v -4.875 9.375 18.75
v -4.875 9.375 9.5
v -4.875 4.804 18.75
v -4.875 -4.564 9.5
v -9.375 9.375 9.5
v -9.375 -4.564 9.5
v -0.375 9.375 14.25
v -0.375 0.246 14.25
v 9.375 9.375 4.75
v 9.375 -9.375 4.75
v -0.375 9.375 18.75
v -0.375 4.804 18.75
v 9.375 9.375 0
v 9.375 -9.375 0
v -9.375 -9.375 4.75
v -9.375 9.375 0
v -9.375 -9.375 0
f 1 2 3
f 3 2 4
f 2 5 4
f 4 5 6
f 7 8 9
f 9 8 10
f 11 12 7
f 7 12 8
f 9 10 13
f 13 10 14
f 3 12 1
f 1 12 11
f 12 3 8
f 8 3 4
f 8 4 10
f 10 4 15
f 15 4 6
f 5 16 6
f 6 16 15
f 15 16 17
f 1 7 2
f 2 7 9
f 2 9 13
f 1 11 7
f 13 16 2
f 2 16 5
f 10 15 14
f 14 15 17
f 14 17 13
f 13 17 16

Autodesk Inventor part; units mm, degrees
ref_plane "YZ Plane" through (0, 0, 0) normal (1, 0, 0) x (0, 1, 0)
ref_plane "XZ Plane" through (0, 0, 0) normal (0, 1, 0) x (-1, 0, 0)
ref_plane "XY Plane" through (0, 0, 0) normal (0, 0, 1) x (1, 0, 0)
sketch "Sketch1" plane through (0, 0, 0) normal (0, 0, 1) x (1, 0, 0)
  line L0 (-9.375, -9.375) -> (9.375, -9.375)
  line L1 (9.375, -9.375) -> (9.375, 9.375)
  line L2 (9.375, 9.375) -> (-9.375, 9.375)
  line L3 (-9.375, 9.375) -> (-9.375, -9.375)
  line L4 (-9.375, -9.375) -> (9.375, 9.375) construction
  line L5 (9.375, -9.375) -> (-9.375, 9.375) construction
  point P0 (0, 0)
  dimension "d0" = 18.75
  dimension "d1" = 18.75
extrude "Extrusion1" add sketch "Sketch1" along normal blind 18.75
sketch "Sketch2" plane through (9.375, -9.375, 0) normal (1, 0, 0) x (0, 0, -1)
  line L0 (0, 0) -> (-4.75, 0)
  line L1 (0, 0) -> (-18.75, 0) projected
  line L2 (-18.75, 18.6787) -> (-18.75, 14.1787)
  line L3 (-18.75, 0) -> (-18.75, 18.75) projected
  line L4 (-18.75, 14.1787) -> (-4.75, 0)
  line L5 (0, 0) -> (0, 18.6787)
  line L6 (0, 18.6787) -> (-18.75, 18.6787)
  line L7 (-18.75, 0) -> (-4.75, 0)
  line L8 (-18.75, 0) -> (-18.75, 14.1787)
  point P0 (0, 9.375)
  point P1 (-18.75, 18.75)
  dimension "d4" = 4.75
  dimension "d5" = 4.5
  dimension "d6" = 45.363
  dimension "d7" = 90.001
extrude "Extrusion2" cut sketch "Sketch2" against normal blind 21 contours L1 L3 L4
sketch "Sketch3" plane through (-9.375, -9.375, 0) normal (0, -1, 0) x (1, 0, 0)
  line L0 (18.75, 18.75) -> (0, 18.75) projected
  line L1 (0, 18.75) -> (4.5, 18.75)
  line L2 (4.5, 18.75) -> (4.5, 9.5)
  line L3 (4.5, 9.5) -> (0, 9.5)
  line L4 (0, 9.5) -> (0, 18.75)
  line L5 (4.5, 18.75) -> (9, 18.75) construction
  line L6 (9, 18.75) -> (9, 14.25)
  line L7 (0, 0) -> (18.75, 0) construction
  line L8 (18.75, 0) -> (18.75, 4.75) construction
  line L9 (18.75, 0) -> (18.75, 18.75) construction
  line L10 (18.75, 4.75) -> (9, 14.25)
  line L11 (9, 18.75) -> (18.75, 18.75)
  line L12 (18.75, 4.75) -> (18.75, 18.75)
  point P0 (9.375, 0)
  dimension "d10" = 4.5
  dimension "d11" = 9.25
  dimension "d12" = 4.5
  dimension "d13" = 4.5
  dimension "d14" = 4.75
extrude "Extrusion3" cut sketch "Sketch3" against normal blind 27.25
